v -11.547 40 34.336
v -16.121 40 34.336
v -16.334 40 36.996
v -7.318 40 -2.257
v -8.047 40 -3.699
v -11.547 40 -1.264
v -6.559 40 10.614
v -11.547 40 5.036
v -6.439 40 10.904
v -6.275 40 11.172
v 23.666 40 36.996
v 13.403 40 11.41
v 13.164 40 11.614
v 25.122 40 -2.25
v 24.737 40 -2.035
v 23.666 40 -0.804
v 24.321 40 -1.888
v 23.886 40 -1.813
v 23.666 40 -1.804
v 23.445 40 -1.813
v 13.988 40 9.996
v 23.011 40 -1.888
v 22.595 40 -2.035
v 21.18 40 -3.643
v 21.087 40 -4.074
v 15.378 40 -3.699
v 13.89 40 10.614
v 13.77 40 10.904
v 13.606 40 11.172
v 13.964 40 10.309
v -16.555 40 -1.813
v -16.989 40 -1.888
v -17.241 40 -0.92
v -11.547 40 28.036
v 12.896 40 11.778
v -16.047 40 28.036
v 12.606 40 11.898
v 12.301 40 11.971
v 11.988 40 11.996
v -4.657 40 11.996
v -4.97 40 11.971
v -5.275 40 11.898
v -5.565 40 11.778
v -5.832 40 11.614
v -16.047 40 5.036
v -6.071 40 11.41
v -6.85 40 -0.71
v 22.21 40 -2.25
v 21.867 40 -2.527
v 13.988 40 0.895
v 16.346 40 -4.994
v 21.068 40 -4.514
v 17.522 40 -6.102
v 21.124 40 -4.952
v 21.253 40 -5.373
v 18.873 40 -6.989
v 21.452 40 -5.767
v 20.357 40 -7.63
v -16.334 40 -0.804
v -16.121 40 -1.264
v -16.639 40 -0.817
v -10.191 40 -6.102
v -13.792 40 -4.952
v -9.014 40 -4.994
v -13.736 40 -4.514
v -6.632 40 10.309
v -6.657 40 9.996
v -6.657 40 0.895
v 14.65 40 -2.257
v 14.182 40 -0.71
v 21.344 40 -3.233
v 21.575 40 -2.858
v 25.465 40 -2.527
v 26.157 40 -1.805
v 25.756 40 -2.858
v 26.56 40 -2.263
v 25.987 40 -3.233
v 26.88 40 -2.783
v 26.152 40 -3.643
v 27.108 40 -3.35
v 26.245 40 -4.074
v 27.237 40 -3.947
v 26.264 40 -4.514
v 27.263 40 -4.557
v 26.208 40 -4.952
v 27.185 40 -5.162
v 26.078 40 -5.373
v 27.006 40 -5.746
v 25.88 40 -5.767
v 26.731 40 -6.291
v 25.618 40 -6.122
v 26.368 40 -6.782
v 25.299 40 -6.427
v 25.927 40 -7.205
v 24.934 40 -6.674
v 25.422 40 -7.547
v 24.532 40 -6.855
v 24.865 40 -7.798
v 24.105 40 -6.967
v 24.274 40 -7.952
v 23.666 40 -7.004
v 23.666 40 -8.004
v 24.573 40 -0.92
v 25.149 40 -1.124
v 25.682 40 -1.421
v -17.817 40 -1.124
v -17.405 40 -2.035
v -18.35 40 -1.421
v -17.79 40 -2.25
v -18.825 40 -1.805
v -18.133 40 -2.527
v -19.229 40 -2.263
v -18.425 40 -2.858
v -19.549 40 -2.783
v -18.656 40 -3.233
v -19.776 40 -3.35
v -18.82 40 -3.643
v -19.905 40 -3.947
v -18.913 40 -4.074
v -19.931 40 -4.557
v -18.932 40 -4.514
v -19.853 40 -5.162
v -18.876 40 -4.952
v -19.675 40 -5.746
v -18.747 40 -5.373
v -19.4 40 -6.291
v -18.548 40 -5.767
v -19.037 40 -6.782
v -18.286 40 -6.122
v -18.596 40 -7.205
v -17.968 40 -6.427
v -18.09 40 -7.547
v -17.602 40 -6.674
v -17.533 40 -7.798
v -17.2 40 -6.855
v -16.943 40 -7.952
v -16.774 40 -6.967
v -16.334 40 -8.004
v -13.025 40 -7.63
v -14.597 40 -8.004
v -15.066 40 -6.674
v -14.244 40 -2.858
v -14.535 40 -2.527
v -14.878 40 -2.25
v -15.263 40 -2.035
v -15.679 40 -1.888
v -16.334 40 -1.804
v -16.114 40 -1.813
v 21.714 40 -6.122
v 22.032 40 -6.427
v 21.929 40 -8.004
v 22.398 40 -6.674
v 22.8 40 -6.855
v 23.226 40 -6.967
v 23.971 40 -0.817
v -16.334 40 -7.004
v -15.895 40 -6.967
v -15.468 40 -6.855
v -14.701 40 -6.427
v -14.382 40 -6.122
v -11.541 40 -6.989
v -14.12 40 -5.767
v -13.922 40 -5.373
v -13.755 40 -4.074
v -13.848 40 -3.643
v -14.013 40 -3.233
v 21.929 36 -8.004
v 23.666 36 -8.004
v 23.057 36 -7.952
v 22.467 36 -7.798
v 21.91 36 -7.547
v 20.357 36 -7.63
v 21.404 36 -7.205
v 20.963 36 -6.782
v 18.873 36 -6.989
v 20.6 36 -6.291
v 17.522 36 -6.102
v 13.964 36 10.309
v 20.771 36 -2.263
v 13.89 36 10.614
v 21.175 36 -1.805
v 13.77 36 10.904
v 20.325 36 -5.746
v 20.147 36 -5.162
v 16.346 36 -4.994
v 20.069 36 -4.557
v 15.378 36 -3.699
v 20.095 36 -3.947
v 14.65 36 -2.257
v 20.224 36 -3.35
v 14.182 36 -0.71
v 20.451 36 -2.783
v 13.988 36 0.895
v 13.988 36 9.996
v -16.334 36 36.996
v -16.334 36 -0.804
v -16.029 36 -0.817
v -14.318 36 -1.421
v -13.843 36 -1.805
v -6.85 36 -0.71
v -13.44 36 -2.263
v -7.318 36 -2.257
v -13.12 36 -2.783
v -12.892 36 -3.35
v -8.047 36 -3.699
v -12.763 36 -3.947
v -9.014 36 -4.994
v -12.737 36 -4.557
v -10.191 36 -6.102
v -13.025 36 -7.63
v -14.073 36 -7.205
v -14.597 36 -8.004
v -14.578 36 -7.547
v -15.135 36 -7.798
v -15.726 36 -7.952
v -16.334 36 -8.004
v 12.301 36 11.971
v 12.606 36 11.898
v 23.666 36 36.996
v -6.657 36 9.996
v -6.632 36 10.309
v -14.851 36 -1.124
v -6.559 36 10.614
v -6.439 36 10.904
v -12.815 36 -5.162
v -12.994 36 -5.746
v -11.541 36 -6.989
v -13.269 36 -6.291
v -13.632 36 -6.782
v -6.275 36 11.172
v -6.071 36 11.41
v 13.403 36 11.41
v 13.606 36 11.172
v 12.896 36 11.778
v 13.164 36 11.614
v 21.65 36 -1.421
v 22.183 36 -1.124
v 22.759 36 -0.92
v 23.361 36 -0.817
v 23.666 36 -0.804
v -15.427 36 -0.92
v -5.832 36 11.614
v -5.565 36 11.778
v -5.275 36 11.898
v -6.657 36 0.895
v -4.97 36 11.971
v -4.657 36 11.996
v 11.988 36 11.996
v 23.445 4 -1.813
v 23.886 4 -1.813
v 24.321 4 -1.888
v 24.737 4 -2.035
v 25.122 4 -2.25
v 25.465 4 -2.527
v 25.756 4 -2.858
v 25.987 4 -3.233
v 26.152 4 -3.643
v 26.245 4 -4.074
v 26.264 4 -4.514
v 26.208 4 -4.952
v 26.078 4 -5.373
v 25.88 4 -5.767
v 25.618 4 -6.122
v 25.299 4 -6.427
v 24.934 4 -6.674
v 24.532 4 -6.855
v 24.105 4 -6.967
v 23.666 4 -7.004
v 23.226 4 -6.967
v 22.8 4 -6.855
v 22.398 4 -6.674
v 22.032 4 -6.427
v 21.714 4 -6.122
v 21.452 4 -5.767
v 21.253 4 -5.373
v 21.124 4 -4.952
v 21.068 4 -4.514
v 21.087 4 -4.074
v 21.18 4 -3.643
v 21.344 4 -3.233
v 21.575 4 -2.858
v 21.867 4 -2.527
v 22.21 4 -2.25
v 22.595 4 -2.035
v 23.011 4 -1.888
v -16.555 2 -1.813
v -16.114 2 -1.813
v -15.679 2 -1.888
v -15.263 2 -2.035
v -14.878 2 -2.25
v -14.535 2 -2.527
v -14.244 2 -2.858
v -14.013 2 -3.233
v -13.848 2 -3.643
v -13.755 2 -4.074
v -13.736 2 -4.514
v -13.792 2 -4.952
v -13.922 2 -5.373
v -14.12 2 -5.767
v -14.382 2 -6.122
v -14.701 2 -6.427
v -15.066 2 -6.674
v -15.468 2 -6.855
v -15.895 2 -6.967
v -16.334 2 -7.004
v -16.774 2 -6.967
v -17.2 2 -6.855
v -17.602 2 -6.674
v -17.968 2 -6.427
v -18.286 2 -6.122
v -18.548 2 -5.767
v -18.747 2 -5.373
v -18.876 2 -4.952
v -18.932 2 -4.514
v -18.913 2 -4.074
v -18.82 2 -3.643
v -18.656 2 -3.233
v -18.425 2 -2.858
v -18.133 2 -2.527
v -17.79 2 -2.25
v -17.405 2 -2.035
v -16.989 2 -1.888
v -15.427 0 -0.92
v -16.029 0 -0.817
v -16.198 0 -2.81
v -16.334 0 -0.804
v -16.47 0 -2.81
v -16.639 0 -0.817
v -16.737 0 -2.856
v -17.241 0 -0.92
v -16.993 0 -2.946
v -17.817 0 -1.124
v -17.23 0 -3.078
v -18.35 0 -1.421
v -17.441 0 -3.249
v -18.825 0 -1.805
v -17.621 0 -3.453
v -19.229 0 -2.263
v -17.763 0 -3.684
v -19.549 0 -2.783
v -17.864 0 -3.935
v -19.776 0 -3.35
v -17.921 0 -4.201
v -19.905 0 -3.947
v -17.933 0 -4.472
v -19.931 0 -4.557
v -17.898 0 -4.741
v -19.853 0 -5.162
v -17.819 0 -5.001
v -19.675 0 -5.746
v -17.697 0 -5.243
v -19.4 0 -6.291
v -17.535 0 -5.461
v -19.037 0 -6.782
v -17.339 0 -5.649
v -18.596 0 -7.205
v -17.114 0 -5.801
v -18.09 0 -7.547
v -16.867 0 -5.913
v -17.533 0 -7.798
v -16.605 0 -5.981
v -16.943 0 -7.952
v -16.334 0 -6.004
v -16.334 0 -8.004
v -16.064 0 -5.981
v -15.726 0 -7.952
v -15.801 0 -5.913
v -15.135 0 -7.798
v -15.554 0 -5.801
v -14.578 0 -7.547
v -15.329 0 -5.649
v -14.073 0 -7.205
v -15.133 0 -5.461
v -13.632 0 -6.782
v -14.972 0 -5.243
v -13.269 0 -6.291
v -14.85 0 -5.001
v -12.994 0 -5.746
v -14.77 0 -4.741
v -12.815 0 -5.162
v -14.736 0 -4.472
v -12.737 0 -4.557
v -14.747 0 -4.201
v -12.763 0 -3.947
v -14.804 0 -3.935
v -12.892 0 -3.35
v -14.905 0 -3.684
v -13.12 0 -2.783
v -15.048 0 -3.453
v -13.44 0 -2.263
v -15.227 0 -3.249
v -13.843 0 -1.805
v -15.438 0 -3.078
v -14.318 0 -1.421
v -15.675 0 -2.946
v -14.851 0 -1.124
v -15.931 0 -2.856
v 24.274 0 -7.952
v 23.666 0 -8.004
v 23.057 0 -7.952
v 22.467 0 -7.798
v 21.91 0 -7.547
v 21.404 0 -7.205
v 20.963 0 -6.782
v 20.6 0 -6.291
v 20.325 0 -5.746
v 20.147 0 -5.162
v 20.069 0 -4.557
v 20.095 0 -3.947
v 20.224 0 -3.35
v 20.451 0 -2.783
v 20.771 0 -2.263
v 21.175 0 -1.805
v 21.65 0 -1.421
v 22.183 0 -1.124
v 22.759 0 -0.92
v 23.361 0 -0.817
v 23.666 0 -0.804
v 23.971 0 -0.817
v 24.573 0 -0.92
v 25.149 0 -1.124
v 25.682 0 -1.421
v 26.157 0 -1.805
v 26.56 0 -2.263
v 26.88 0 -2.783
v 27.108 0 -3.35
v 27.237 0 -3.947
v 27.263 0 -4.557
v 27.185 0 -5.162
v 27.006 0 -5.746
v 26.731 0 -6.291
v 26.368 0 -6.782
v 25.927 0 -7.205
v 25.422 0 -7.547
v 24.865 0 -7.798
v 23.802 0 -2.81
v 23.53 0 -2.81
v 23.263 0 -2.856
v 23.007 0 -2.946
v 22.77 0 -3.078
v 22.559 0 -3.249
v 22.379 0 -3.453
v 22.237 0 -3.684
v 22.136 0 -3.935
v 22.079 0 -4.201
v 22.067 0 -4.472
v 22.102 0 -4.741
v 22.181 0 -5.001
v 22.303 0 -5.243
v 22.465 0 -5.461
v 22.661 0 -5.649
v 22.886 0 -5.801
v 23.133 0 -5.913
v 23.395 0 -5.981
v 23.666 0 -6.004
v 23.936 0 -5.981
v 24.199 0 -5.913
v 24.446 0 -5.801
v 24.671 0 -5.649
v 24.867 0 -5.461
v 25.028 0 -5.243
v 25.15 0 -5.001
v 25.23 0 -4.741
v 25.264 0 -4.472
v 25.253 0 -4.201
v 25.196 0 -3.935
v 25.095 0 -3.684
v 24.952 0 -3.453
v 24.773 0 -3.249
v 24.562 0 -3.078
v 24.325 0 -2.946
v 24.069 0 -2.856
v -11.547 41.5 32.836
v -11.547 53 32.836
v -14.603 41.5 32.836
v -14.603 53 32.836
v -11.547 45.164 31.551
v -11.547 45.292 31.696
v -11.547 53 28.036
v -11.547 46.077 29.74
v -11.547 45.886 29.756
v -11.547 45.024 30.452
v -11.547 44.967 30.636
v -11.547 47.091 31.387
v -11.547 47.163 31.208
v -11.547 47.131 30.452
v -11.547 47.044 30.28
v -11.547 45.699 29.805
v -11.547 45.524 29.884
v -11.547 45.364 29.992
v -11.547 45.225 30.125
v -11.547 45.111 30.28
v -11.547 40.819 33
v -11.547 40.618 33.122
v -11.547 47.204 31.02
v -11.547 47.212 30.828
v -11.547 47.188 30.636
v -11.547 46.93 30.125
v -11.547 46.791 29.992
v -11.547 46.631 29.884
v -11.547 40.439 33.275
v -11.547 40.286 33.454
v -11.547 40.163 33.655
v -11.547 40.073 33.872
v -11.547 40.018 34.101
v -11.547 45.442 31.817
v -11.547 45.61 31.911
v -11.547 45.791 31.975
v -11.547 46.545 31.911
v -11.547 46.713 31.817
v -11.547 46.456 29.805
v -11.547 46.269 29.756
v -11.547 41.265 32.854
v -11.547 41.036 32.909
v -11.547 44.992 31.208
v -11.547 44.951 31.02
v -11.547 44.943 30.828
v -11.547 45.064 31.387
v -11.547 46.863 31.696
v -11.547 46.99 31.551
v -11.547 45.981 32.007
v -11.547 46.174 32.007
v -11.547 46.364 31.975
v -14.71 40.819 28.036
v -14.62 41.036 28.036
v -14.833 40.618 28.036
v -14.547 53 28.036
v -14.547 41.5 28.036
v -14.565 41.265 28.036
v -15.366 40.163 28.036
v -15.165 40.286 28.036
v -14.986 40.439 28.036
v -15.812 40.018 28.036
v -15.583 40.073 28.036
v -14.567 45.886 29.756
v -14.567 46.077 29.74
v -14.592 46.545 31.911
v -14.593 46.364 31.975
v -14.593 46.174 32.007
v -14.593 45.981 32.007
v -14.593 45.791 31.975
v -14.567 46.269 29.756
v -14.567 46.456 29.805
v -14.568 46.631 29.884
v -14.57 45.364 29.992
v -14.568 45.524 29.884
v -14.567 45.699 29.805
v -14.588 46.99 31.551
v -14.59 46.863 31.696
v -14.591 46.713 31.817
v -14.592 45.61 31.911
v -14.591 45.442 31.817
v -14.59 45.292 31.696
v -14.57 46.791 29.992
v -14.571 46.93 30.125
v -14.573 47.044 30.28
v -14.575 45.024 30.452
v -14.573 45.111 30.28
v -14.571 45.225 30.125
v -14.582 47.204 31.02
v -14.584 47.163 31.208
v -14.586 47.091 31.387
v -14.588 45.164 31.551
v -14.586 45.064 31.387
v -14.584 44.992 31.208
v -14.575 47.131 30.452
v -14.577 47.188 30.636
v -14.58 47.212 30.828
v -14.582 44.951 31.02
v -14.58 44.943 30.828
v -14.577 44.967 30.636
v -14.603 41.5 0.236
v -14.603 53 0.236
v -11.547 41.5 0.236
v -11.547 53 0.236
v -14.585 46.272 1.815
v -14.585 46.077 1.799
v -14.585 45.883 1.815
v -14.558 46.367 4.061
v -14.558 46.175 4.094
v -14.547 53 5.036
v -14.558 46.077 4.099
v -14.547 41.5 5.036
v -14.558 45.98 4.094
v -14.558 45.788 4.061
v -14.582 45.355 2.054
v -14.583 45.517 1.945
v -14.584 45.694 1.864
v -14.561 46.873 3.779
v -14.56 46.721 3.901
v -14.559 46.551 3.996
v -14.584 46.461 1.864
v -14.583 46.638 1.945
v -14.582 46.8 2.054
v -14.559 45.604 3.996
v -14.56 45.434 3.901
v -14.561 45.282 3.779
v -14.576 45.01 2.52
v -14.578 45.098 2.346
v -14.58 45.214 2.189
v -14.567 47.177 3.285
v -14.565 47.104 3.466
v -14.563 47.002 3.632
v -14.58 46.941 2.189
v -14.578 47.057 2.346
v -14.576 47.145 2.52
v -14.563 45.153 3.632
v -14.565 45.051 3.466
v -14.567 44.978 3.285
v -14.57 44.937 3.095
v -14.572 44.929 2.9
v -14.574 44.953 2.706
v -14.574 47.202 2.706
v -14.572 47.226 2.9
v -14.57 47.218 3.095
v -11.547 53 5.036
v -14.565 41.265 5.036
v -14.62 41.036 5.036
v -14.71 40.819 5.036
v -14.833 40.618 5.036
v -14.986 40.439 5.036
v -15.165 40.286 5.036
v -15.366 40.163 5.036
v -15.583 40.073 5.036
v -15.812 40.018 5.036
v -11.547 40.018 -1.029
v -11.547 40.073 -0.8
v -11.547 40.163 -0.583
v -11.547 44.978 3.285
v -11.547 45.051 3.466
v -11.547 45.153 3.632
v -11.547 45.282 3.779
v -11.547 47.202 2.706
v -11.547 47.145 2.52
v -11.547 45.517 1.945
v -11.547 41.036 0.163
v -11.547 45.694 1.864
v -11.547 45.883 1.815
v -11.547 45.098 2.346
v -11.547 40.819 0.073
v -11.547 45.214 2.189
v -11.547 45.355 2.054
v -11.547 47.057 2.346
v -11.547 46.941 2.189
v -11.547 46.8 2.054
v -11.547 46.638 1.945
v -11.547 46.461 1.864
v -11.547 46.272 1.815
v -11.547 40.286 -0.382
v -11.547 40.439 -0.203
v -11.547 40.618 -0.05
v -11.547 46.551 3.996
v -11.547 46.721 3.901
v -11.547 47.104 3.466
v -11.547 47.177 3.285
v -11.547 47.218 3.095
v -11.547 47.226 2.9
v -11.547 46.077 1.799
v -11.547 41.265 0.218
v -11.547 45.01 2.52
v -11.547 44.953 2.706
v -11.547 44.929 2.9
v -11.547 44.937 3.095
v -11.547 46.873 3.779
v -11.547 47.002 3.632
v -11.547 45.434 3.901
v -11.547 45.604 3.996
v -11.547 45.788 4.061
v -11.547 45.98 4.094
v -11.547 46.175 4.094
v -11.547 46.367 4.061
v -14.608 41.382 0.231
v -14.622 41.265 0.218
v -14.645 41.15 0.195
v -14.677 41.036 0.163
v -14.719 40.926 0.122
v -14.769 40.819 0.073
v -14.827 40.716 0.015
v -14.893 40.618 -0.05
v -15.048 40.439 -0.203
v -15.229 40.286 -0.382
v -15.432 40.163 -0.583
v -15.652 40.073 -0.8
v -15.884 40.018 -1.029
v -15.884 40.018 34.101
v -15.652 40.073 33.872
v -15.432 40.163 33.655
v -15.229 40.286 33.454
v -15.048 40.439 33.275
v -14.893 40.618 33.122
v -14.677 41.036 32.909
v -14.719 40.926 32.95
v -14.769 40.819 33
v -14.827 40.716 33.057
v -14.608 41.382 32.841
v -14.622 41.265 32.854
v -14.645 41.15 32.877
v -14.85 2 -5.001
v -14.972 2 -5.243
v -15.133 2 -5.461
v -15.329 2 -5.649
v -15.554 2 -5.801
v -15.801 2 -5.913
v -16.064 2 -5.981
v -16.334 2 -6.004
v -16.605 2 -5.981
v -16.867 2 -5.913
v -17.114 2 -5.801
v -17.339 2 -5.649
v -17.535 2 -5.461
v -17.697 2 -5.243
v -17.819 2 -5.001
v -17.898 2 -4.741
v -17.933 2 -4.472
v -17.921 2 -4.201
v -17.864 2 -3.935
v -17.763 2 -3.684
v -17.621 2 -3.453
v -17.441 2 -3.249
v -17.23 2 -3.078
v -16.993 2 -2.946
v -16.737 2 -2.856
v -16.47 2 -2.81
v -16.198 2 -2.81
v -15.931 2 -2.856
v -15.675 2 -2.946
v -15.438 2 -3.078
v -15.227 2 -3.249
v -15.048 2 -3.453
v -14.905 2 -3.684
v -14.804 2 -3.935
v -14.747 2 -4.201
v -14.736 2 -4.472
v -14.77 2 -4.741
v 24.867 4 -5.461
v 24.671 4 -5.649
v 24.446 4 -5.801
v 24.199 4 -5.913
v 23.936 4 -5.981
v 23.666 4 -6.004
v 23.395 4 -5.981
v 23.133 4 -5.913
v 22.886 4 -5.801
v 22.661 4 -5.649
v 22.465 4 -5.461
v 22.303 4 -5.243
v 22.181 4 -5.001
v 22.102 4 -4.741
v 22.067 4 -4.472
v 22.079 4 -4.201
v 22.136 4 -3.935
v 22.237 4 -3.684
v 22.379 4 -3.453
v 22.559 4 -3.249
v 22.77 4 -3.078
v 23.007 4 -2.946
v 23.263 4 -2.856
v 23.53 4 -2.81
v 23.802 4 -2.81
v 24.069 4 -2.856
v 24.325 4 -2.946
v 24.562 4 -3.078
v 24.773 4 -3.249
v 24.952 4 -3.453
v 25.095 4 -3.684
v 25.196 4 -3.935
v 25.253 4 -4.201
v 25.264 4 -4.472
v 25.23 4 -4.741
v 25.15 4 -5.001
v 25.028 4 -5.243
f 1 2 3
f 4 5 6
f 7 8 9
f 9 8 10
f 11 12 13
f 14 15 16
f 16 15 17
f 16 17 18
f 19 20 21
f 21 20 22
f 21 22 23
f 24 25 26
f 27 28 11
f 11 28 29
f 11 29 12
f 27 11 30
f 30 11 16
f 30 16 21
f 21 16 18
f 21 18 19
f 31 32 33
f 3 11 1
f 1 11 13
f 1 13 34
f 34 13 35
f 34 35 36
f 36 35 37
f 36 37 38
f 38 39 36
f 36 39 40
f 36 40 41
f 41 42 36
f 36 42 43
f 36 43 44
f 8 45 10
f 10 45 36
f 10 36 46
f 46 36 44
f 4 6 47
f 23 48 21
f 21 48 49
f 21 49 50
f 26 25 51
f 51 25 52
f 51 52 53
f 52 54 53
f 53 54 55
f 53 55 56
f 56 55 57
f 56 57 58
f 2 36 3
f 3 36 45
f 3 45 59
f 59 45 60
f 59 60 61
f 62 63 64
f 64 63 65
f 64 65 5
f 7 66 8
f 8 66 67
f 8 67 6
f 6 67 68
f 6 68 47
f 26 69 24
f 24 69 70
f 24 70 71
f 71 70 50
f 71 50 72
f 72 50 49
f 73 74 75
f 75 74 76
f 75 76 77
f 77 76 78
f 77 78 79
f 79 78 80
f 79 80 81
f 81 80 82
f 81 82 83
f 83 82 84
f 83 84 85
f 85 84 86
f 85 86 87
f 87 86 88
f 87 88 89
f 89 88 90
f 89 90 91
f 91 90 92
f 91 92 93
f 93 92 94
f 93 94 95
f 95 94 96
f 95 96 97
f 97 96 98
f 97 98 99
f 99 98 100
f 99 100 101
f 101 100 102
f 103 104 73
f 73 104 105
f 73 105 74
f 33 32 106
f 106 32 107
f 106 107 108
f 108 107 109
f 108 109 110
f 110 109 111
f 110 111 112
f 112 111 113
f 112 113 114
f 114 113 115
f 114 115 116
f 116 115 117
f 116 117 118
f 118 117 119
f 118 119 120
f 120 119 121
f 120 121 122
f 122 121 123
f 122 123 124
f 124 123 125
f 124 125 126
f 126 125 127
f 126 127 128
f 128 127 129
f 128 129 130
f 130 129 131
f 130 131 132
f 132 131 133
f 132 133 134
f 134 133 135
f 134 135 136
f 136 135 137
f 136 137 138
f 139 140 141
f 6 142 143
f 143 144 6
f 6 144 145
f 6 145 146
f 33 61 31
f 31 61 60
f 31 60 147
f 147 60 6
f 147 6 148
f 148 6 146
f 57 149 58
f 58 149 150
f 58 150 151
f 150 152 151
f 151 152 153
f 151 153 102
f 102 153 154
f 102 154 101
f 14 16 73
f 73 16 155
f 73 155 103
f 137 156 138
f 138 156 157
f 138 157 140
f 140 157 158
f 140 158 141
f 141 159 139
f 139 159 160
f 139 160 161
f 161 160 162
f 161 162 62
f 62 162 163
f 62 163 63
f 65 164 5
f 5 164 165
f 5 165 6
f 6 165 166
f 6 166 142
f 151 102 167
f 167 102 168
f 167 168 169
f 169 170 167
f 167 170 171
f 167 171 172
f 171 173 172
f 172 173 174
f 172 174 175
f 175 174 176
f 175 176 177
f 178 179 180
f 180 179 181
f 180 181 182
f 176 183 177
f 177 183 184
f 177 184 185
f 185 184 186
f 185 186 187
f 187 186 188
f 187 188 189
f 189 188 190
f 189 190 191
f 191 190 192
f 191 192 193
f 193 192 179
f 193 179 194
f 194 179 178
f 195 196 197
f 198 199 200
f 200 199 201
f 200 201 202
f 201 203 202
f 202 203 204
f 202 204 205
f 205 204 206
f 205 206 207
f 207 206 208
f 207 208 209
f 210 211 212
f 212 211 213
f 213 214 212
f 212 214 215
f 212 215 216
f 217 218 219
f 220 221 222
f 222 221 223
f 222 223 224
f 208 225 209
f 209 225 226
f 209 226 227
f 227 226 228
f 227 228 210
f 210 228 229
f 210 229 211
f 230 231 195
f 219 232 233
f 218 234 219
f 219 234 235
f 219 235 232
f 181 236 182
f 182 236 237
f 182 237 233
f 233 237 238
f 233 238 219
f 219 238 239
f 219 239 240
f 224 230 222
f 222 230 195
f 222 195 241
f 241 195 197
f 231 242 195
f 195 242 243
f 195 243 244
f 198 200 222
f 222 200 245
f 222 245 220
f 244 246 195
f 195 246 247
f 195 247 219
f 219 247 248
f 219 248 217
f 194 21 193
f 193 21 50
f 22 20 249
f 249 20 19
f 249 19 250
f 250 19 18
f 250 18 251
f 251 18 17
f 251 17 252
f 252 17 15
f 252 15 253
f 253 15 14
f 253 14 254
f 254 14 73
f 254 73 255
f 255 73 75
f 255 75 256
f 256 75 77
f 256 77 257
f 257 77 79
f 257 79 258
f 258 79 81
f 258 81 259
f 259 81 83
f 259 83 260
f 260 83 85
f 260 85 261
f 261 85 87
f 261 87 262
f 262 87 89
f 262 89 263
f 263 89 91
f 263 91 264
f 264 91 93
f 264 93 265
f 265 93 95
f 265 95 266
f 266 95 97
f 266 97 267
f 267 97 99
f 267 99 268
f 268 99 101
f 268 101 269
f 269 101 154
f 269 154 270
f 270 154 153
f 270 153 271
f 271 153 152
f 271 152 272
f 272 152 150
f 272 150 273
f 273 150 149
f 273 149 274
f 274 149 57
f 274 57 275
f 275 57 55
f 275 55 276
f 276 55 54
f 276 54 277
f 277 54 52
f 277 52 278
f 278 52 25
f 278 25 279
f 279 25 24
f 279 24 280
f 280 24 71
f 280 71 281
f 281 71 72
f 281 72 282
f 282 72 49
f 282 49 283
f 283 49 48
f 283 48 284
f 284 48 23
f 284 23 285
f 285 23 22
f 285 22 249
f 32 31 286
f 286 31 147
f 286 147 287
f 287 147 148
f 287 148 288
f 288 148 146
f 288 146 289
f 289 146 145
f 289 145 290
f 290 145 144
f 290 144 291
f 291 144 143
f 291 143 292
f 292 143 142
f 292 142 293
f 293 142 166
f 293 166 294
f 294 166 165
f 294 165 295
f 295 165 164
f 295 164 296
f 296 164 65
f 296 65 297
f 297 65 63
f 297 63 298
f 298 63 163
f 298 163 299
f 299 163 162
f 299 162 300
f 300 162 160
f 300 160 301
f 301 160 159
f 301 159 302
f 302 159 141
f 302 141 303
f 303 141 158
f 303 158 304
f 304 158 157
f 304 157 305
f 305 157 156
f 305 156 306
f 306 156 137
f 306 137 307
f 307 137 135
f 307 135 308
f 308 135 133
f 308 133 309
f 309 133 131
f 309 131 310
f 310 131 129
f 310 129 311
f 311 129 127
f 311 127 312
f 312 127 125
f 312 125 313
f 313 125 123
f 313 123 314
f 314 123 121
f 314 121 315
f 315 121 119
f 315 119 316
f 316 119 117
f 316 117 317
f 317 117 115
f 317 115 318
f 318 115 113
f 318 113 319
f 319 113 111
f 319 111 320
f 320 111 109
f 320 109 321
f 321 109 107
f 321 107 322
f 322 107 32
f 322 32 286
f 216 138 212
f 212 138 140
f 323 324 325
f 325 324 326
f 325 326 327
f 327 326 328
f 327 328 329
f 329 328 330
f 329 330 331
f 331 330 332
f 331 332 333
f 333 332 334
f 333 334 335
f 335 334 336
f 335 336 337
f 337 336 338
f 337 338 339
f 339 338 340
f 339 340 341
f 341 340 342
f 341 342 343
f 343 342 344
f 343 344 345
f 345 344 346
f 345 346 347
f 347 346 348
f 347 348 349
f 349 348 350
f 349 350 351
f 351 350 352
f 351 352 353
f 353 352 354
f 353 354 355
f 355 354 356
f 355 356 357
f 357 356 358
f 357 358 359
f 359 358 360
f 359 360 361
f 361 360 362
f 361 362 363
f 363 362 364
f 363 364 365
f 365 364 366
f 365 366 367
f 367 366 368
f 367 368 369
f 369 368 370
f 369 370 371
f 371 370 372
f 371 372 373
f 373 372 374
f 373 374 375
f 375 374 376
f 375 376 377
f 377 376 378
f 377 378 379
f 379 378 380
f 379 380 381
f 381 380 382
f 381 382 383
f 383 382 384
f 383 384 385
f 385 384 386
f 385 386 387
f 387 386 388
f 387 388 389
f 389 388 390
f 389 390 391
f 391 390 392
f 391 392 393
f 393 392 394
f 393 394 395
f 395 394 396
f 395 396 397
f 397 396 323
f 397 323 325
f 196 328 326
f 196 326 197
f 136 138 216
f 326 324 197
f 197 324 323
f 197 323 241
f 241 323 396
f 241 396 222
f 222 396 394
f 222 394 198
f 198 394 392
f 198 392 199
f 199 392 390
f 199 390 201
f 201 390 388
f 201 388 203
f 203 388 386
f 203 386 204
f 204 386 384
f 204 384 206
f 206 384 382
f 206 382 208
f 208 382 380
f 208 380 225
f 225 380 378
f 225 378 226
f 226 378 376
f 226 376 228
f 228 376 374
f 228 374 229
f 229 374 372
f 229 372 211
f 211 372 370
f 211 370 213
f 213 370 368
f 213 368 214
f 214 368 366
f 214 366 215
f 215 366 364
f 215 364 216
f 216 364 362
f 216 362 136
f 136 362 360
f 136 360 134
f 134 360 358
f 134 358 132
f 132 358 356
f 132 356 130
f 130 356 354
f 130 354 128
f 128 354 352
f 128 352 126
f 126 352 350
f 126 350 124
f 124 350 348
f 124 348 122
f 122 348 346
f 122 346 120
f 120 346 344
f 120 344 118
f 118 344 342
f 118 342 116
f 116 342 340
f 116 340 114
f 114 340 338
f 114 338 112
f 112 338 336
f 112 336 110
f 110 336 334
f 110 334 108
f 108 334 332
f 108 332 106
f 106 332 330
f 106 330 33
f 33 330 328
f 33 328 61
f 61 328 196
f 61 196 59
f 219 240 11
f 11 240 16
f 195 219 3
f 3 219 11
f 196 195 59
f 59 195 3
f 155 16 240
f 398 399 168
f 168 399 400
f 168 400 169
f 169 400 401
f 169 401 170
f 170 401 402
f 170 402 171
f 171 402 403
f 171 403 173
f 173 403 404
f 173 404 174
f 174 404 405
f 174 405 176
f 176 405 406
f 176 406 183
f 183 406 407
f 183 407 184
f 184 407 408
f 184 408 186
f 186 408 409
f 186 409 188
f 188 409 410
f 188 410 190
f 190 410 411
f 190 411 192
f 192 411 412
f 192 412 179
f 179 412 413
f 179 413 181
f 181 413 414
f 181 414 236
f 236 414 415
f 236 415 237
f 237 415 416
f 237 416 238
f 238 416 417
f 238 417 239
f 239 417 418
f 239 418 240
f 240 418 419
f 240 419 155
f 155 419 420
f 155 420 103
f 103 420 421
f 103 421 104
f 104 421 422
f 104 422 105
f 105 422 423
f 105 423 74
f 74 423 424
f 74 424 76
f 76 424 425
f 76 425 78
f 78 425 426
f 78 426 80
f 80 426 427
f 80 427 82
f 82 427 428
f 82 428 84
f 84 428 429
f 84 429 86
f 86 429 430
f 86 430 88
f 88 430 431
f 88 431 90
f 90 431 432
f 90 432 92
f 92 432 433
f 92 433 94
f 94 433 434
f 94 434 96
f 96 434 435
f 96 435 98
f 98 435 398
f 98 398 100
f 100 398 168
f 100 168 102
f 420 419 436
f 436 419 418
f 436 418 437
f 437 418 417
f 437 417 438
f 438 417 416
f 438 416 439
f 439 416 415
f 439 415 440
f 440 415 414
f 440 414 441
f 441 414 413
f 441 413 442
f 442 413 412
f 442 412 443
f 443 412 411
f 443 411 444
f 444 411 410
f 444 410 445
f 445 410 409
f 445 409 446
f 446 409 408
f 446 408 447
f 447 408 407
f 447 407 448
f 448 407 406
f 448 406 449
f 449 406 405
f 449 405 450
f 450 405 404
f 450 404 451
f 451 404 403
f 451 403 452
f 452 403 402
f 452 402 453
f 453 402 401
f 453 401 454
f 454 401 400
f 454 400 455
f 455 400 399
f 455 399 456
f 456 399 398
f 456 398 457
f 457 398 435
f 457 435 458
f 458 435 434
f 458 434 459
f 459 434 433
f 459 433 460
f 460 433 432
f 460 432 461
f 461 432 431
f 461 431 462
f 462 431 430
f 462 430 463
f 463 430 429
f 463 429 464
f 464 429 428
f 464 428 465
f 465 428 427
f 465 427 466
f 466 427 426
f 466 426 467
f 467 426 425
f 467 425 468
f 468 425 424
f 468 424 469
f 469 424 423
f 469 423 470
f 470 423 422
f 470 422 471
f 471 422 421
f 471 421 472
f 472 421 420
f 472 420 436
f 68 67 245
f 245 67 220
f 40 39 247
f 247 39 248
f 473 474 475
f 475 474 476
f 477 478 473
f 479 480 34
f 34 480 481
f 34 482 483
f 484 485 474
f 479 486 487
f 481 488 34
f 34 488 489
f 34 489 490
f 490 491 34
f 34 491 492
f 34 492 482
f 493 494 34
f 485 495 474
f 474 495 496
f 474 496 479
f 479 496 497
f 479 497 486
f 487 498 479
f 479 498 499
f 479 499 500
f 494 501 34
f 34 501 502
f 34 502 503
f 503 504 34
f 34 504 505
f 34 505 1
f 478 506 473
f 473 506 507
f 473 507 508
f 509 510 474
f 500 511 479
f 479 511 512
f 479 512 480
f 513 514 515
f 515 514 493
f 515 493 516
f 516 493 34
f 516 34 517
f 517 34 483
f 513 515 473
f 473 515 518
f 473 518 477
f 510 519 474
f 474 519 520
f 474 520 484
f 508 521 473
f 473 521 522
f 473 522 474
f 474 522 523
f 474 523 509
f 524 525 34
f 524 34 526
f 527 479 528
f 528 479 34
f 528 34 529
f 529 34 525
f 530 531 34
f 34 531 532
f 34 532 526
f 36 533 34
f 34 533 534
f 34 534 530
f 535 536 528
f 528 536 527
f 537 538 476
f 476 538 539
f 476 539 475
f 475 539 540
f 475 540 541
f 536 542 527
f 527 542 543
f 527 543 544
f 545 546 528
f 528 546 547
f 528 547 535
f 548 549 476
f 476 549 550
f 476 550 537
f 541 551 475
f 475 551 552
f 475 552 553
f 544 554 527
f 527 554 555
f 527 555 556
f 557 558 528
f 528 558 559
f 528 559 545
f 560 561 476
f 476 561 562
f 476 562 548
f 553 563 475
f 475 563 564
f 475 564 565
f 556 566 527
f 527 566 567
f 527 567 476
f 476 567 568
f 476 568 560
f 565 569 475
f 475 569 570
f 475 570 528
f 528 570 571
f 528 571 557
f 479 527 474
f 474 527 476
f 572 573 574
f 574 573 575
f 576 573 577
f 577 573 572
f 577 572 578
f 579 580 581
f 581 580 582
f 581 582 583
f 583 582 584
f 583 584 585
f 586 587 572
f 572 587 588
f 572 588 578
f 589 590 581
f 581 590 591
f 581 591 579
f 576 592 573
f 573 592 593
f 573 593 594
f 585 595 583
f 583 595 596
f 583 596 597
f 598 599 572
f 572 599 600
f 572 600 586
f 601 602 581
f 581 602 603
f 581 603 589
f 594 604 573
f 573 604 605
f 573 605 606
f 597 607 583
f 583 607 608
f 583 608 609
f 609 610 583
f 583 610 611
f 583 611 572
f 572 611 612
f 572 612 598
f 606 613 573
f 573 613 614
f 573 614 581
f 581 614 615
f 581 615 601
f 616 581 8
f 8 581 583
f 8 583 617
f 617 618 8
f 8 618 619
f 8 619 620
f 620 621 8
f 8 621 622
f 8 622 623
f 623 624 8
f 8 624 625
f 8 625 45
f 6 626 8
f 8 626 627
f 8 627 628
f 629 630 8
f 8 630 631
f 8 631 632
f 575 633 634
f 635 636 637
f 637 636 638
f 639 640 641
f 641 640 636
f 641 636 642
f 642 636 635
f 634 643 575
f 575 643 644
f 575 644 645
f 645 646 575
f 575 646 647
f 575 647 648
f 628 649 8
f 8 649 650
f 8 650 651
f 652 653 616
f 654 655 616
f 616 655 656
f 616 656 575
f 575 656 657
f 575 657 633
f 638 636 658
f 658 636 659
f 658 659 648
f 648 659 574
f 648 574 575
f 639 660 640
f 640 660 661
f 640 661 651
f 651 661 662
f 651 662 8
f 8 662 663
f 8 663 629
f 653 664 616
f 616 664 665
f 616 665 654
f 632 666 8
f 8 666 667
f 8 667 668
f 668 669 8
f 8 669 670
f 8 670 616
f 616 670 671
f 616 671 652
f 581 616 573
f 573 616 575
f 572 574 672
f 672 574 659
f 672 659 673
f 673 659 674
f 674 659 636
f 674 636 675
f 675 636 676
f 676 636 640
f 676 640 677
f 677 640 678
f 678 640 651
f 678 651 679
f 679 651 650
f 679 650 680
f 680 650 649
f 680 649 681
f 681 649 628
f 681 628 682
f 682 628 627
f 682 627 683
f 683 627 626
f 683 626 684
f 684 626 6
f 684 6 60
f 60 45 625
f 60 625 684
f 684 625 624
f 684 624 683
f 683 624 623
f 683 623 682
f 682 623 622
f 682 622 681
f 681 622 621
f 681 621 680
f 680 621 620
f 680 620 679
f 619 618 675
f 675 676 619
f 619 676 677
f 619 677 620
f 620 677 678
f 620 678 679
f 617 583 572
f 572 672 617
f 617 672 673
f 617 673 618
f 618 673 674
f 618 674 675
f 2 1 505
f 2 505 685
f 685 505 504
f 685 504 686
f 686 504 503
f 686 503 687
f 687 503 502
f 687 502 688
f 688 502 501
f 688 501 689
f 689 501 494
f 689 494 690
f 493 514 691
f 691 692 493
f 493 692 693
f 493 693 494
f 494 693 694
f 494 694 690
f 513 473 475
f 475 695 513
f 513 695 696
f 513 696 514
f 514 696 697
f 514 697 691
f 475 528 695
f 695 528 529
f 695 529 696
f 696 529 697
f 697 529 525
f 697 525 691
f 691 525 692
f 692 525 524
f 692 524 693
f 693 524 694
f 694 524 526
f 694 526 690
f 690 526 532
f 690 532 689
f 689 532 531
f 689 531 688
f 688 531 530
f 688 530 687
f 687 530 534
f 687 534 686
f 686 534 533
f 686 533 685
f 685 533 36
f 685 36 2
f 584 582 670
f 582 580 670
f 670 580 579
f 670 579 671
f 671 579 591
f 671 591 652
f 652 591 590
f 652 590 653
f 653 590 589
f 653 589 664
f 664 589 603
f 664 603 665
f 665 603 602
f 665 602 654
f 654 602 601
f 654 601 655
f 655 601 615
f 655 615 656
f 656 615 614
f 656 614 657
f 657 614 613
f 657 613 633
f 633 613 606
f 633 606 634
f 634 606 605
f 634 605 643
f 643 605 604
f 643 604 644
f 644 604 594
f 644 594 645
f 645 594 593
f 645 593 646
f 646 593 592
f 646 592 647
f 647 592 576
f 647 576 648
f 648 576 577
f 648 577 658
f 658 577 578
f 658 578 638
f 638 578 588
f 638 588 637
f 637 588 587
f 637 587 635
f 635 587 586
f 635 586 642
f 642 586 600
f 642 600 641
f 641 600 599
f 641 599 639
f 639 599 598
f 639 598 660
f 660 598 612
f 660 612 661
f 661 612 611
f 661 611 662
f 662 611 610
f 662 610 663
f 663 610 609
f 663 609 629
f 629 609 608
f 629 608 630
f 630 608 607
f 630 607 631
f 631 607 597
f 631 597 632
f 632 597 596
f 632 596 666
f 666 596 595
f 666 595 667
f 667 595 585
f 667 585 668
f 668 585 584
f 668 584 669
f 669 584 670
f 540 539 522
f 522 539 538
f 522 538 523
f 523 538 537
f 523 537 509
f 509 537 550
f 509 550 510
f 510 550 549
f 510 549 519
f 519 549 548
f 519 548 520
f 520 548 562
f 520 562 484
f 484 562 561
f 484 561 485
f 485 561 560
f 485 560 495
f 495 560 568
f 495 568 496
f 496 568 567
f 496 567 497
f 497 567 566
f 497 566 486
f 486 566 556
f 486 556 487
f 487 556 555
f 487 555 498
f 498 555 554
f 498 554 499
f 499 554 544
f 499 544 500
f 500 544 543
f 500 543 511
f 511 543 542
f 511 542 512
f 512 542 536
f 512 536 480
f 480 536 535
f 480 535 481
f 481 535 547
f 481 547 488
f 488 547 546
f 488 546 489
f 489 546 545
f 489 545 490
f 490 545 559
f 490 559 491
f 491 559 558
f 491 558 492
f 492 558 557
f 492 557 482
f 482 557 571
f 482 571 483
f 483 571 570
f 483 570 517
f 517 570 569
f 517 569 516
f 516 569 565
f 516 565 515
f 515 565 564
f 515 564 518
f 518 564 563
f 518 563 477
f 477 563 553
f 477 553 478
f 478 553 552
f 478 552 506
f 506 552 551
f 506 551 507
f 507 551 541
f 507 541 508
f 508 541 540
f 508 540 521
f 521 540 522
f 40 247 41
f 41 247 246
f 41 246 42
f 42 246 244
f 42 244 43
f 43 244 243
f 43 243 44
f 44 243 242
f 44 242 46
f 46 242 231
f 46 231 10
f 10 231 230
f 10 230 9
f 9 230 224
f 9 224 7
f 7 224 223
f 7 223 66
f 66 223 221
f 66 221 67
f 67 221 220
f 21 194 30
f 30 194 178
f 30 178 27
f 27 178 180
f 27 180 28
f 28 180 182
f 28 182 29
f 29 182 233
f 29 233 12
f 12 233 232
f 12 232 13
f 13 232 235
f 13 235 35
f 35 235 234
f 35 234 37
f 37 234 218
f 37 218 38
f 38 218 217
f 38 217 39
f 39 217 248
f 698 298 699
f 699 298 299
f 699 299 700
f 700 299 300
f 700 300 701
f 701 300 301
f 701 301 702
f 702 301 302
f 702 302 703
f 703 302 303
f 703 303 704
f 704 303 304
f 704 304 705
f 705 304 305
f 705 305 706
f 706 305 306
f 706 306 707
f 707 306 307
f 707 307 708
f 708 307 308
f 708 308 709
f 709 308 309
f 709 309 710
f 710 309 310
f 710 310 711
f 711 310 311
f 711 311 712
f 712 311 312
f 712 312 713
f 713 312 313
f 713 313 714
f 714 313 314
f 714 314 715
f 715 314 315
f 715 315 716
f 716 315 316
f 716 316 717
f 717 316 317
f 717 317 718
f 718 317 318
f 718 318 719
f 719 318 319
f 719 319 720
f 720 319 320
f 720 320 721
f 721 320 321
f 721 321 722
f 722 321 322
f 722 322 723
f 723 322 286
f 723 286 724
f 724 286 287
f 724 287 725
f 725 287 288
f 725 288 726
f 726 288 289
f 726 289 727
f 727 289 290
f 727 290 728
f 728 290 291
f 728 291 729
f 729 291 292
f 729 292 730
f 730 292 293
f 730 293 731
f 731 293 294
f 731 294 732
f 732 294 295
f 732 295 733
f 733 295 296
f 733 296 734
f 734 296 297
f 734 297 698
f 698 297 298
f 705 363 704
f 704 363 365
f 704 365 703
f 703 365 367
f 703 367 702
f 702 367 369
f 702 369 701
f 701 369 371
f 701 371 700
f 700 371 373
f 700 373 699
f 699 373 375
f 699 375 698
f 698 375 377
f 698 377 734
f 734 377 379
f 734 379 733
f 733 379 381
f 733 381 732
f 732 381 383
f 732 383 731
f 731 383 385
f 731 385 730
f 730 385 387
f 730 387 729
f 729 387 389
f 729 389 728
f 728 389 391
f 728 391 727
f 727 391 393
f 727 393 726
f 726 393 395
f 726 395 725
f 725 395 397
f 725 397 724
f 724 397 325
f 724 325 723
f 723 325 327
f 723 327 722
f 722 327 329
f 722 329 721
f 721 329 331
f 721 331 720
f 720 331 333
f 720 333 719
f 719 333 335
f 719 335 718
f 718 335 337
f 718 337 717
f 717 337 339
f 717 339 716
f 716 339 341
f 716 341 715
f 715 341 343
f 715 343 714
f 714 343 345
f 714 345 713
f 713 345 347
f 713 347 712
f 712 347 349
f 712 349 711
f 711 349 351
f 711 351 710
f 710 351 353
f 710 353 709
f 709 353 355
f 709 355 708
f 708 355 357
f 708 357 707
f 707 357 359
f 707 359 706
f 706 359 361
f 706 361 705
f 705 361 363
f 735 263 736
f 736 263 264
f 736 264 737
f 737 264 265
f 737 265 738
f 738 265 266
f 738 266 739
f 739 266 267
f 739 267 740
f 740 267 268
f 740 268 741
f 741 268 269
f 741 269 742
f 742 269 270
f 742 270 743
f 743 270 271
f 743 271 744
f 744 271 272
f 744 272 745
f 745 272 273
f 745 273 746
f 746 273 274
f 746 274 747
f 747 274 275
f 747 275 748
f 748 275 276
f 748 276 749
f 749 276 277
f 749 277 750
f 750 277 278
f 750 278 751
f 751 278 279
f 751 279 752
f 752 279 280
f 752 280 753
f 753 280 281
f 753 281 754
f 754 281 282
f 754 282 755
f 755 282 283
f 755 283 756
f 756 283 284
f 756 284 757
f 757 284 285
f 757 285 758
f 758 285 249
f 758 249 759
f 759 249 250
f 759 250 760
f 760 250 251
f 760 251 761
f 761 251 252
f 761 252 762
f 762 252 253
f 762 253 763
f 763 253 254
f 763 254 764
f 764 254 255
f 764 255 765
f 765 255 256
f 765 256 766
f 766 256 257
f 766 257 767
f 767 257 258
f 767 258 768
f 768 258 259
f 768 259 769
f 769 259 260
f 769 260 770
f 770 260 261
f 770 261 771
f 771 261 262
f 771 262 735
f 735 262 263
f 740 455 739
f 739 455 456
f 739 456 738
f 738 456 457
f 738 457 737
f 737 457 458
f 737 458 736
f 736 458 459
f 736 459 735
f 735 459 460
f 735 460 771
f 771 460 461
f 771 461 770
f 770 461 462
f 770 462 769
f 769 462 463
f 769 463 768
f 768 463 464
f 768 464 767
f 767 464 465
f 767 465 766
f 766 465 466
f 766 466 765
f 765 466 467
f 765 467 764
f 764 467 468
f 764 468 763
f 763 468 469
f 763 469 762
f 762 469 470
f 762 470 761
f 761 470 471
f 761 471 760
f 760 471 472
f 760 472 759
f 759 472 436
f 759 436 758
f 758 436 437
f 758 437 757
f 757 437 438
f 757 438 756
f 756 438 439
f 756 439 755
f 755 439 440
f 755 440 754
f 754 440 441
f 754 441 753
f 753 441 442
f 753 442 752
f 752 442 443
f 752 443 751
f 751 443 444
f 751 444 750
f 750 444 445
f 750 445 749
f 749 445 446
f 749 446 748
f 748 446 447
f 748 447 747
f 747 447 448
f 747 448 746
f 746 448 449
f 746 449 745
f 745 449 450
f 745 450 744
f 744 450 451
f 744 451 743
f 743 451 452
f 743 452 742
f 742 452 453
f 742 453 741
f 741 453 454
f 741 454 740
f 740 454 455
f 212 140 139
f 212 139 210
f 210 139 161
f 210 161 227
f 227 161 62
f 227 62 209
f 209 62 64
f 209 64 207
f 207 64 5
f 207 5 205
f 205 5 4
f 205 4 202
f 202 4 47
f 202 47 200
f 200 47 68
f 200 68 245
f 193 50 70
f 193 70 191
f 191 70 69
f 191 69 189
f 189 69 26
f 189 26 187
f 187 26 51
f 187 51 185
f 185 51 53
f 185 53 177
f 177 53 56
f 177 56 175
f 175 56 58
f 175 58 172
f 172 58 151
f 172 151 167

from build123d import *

# Parameters (mm, degrees)
SKETCH1_R             = 3.6
SKETCH1_R_2           = 2.6
BOSS_EXTRUDE1_DEPTH   = 40
BOSS_EXTRUDE1_2_DEPTH = 40
BOSS_EXTRUDE2_START   = -4
BOSS_EXTRUDE2_DEPTH   = 4
SKETCH4_W             = 20.645
SKETCH4_H             = 20
CUT_EXTRUDE2_DEPTH    = 10
BOSS_EXTRUDE3_DEPTH   = 13
FILLET3_R             = 1.5
SKETCH6_R             = 1.135575656
SKETCH6_R_2           = 1.15
CUT_EXTRUDE3_DEPTH    = 13
FILLET4_R             = 2
SKETCH9_R             = 2.851630117
SKETCH9_R_2           = 1.6
BOSS_EXTRUDE4_DEPTH   = 2
SKETCH10_R            = 2.895791365
SKETCH10_R_2          = 1.6
BOSS_EXTRUDE5_DEPTH   = 4
CUT_EXTRUDE4_DEPTH    = 10


with BuildPart() as part:
    # Sketch1 → Boss-Extrude1 (new body)
    with BuildSketch(Plane(origin=(0, 0, 0), x_dir=(1, 0, 0), z_dir=(0, 1, 0))):
        with Locations(Location((-16.334138417, 4.403985818, 0), (0, 0, 270))):
            Circle(SKETCH1_R)
        with Locations(Location((-16.334138417, 4.403985818, 0), (0, 0, 270))):
            Circle(SKETCH1_R_2, mode=Mode.SUBTRACT)
    extrude(amount=BOSS_EXTRUDE1_DEPTH)



with BuildPart() as body_2:
    # Sketch1 → Boss-Extrude1 2 (new body)
    with BuildSketch(Plane(origin=(0, 0, 0), x_dir=(1, 0, 0), z_dir=(0, 1, 0))):
        with Locations(Location((23.665861583, 4.403985818, 0), (0, 0, 270))):
            Circle(SKETCH1_R)
        with Locations(Location((23.665861583, 4.403985818, 0), (0, 0, 270))):
            Circle(SKETCH1_R_2, mode=Mode.SUBTRACT)
    extrude(amount=BOSS_EXTRUDE1_2_DEPTH)


with BuildPart() as part_1:
    add(part.part)

    add(body_2.part)  # Boss-Extrude2 merges body 2
    # Sketch2 → Boss-Extrude2 (add)
    with BuildSketch(Plane(origin=(0, 40, 0), x_dir=(1, 0, 0), z_dir=(0, 1, 0)).offset(BOSS_EXTRUDE2_START)):
        with BuildLine():
            Line((-16.334138417, 8.003985818), (23.665861583, 8.003985818))
            ThreePointArc((23.665861583, 8.003985818), (20.065861583, 4.403985818), (23.665861583, 0.803985818))
            Line((23.665861583, 0.803985818), (23.665861583, -36.996014182))
            Line((23.665861583, -36.996014182), (-16.334138417, -36.996014182))
            Line((-16.334138417, -36.996014182), (-16.334138417, 0.803985818))
            ThreePointArc((-16.334138417, 0.803985818), (-12.734138417, 4.403985818), (-16.334138417, 8.003985818))
        make_face()
    extrude(amount=BOSS_EXTRUDE2_DEPTH)

    # Sketch4 → Cut-Extrude2 (cut)
    with BuildSketch(Plane(origin=(0, 40, 0), x_dir=(1, 0, 0), z_dir=(0, 1, 0))):
        with Locations((3.665861583, -1.996014182)):
            Rectangle(SKETCH4_W, SKETCH4_H)
    extrude(amount=-CUT_EXTRUDE2_DEPTH, mode=Mode.SUBTRACT)

    # Sketch5 → Boss-Extrude3 (add)
    with BuildSketch(Plane(origin=(0, 40, 0), x_dir=(1, 0, 0), z_dir=(0, 1, 0))):
        Polygon((-11.546638417, -5.036014182), (-14.546638417, -5.036014182), (-14.603209007, -0.236014182), (-11.546638417, -0.236014182), align=None)
        Polygon((-14.546638417, -28.036014182), (-11.546638417, -28.036014182), (-11.546638417, -32.836014182), (-14.603209007, -32.836014182), align=None)
    extrude(amount=BOSS_EXTRUDE3_DEPTH)

    # Fillet3
    fillet3_edges = [part_1.edges().sort_by_distance(p)[0] for p in [
        (-13.074923712, 40, 32.836014182),
        (-14.574923712, 40, 30.436014182),
        (-13.074923712, 40, 0.236014182),
        (-14.574923712, 40, 2.636014182),
    ]]
    fillet(fillet3_edges, radius=FILLET3_R)

    # Sketch6 → Cut-Extrude3 (cut)
    with BuildSketch(Plane(origin=(-11.546638417, 0.245033675, 0.24921506), x_dir=(0, 0, -1), z_dir=(1, 0, 0))):
        with Locations((-30.626521838, 45.832462835)):
            Circle(SKETCH6_R)
        with Locations((-2.699312308, 45.832462835)):
            Circle(SKETCH6_R_2)
    extrude(amount=-CUT_EXTRUDE3_DEPTH, mode=Mode.SUBTRACT)

    # Fillet4
    fillet4_edges = [part_1.edges().sort_by_distance(p)[0] for p in [
        (-6.656638417, 38, 11.996014182),
        (-6.656638417, 38, -8.003985818),
        (13.988361583, 38, -8.003985818),
        (13.988361583, 38, 11.996014182),
    ]]
    fillet(fillet4_edges, radius=FILLET4_R)

    # Sketch9 → Boss-Extrude4 (add)
    with BuildSketch(Plane.XZ):
        with Locations((-16.334138417, -4.403985818)):
            Circle(SKETCH9_R)
        with Locations(Location((-16.334138417, -4.403985818, 0), (0, 0, 270))):
            Circle(SKETCH9_R_2, mode=Mode.SUBTRACT)
    extrude(amount=-BOSS_EXTRUDE4_DEPTH)

    # Sketch10 → Boss-Extrude5 (add)
    with BuildSketch(Plane.XZ):
        with Locations((23.665861583, -4.403985818)):
            Circle(SKETCH10_R)
        with Locations(Location((23.665861583, -4.403985818, 0), (0, 0, 270))):
            Circle(SKETCH10_R_2, mode=Mode.SUBTRACT)
    extrude(amount=-BOSS_EXTRUDE5_DEPTH)

    # Sketch12 → Cut-Extrude4 (cut)
    with BuildSketch(Plane(origin=(0, 40, 0), x_dir=(1, 0, 0), z_dir=(0, 1, 0))):
        with BuildLine():
            Line((-14.597154628, 8.003985818), (-6.526218466, 8.003985818))
            Line((-6.526218466, 8.003985818), (-6.656638417, -0.894717181))
            ThreePointArc((-6.656638417, -0.894717181), (-9.013941955, 4.99391057), (-14.597154628, 8.003985818))
        make_face()
    cut_extrude4 = extrude(amount=-CUT_EXTRUDE4_DEPTH, mode=Mode.SUBTRACT)

    # Mirror1: Cut-Extrude4 across plane
    add(cut_extrude4.mirror(Plane.ZY.offset(-3.665861583)), mode=Mode.SUBTRACT)


solid = part_1.part
